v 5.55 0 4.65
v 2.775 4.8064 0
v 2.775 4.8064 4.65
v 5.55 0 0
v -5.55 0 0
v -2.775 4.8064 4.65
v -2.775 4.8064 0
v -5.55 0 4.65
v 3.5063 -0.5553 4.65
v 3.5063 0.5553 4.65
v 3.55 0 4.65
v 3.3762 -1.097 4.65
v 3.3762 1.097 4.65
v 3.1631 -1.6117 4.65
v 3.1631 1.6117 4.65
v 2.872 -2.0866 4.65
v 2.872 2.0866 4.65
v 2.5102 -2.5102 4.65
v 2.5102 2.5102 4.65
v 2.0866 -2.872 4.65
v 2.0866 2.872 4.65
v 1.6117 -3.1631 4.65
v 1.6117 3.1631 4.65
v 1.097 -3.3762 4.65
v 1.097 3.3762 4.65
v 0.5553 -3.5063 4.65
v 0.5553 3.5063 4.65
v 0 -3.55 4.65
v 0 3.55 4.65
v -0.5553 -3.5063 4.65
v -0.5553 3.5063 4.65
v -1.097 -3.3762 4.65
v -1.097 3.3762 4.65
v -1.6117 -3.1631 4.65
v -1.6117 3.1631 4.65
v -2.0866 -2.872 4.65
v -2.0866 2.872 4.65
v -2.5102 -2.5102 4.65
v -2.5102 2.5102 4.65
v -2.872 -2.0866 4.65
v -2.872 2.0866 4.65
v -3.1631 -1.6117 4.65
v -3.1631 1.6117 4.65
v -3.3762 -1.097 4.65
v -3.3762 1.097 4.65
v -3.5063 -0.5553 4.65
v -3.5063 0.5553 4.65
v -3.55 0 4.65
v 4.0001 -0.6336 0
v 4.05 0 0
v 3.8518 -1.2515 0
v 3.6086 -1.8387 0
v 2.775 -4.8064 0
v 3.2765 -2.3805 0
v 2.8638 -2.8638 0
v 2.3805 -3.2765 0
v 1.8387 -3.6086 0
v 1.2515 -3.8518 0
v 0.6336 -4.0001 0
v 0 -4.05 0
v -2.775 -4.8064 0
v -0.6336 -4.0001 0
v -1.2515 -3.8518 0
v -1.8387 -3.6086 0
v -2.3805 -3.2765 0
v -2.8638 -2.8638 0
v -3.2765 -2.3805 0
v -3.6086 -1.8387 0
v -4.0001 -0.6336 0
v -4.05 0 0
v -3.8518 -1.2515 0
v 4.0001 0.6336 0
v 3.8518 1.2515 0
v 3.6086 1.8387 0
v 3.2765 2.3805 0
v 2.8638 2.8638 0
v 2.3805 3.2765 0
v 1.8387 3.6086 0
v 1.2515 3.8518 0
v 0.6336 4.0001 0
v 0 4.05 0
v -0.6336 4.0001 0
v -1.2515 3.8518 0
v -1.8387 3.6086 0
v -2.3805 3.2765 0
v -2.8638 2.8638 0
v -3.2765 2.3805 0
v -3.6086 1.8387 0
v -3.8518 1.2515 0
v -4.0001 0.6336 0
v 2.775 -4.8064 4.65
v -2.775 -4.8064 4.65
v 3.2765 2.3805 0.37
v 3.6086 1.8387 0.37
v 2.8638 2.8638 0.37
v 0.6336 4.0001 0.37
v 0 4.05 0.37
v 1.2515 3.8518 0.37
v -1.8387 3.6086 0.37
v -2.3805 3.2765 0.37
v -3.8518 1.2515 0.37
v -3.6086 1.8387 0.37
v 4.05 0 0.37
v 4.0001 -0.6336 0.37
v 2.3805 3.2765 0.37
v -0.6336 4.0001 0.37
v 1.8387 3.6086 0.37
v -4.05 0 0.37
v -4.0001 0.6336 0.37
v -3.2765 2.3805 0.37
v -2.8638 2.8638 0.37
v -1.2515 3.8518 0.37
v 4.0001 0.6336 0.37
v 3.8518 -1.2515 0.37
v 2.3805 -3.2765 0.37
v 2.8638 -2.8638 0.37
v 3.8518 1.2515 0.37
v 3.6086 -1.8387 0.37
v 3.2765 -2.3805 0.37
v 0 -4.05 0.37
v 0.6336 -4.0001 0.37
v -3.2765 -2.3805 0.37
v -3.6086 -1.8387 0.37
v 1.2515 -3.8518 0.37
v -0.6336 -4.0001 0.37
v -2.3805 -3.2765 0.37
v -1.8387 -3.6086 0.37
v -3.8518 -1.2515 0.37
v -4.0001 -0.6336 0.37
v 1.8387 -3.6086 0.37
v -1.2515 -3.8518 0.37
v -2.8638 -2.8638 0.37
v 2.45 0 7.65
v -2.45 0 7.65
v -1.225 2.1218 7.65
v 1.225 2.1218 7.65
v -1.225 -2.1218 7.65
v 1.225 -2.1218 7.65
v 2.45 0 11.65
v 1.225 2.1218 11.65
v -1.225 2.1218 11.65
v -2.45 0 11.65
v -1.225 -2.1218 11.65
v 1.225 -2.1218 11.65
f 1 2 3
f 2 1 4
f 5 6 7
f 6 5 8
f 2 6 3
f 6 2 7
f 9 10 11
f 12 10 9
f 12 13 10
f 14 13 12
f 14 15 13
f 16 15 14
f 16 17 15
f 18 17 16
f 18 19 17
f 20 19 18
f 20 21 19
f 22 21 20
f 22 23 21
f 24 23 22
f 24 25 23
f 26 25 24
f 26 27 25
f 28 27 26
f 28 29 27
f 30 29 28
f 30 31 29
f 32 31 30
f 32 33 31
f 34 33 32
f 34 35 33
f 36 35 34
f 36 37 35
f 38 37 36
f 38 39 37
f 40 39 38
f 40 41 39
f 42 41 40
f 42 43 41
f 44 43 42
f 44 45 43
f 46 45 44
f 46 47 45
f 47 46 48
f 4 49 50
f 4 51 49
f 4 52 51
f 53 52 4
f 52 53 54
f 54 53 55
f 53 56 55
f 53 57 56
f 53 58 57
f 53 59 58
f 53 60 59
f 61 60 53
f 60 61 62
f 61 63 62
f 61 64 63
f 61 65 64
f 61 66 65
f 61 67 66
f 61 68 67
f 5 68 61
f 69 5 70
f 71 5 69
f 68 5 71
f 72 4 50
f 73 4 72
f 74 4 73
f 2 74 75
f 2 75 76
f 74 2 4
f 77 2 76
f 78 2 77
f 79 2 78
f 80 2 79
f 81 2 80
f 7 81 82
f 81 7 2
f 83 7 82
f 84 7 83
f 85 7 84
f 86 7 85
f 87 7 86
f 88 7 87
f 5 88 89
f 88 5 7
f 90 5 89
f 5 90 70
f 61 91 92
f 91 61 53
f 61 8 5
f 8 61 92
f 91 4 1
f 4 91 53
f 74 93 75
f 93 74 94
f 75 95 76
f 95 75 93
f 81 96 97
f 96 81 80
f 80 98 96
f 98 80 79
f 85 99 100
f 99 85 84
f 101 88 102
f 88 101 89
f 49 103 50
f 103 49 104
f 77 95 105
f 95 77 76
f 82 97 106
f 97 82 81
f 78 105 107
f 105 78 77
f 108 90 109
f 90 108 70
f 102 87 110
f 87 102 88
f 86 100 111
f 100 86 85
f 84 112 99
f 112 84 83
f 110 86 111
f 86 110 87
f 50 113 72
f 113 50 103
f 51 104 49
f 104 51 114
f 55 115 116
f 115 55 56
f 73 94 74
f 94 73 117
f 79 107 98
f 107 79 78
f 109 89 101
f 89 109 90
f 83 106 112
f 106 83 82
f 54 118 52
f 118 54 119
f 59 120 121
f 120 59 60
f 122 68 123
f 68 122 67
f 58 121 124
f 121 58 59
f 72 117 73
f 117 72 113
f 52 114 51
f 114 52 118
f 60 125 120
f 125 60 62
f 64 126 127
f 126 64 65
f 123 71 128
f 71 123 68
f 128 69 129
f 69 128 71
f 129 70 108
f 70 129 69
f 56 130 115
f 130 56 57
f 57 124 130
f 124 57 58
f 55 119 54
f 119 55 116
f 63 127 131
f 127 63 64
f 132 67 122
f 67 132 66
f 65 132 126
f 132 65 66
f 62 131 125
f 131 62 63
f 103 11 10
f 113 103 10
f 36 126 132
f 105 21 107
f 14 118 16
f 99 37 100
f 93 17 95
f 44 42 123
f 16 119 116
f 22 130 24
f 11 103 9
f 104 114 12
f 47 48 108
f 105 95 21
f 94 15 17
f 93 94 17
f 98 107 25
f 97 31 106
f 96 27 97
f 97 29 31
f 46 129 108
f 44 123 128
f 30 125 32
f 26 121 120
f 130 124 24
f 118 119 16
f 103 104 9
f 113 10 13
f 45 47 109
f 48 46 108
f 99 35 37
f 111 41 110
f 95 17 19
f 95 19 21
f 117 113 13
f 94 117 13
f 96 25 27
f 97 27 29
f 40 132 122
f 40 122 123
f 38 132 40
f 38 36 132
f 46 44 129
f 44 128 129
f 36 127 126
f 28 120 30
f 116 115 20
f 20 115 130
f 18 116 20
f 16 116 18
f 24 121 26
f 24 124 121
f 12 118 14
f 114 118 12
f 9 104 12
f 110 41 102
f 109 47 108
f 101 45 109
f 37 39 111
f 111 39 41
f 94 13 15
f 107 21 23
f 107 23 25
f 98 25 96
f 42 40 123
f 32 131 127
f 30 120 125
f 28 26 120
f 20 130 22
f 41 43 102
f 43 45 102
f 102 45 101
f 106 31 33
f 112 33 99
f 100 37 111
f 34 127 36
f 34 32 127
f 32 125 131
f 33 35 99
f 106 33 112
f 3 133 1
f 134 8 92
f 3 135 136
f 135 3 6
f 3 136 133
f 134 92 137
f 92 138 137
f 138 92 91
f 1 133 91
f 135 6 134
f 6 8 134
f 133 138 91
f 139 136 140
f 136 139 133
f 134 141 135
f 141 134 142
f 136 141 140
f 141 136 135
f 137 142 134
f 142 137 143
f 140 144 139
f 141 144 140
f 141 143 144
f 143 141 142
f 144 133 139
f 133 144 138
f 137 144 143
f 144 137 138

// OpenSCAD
// Anton Bilbaeno
// 4     b11b4
// github: 4b11b4
// thingiverse: 4b11b4
// www.4b11b4.com
// 1/30/2019


// A model for a 3D printed drill bit designed to tighten 3.5mm
// knurled nuts. These are common in Eurorack synthesizer modules.

// This drill bit is unique in that most designs feature "nubs" to
// fit into two "slots" on these knurled nuts. This design completely
// ignores those "slots". Instead, the inside of the "grip" is a cone
// shape. In other words, the cutout is a cylinder with a decreasing
// diameter as it goes up.

// Instead of having "nubs" which fit into the "slots" of the knurled
// nut, this "grip" simply uses friction. A small amount of downward
// force is required. This does cause the "grip" to wear out over time.
// However, as you wear out one layer (i.e. each "layer" created by the
// 3D printer), the layer above it will begin to grip the knurled nut.

// With the proper driver, the bit can be used to tighten knurled
// nuts to an appropriate level of torque.

// It may be possible to design some even more complex structures
// inside the bit, so that as you wear out one layer, you will reach
// a completely new grip. This would eventually require removing
// some of the face of the bit (i.e. sanding down the front).



// While tweaking the variables below, it is helpful to see the inside of
// the bit. You will find a helpful comment in the grip() definition below.



// REAL-WORLD MEASUREMENTS USING METAL CALIPERS
// If default .STL files do not work, try check these measurements.
KNURL_D_MEASURE = 7.70; //measured outer diameter of a knurled nut
KNURL_H_MEASURE = 1.87; //height of a knurled nut
THREAD_H_MEASURE = 4.65; //height of threads on jack
BIT_D_MEASURE = 4.5; //common drill bit sizes: 4.5, 6mm

// PRINTER TWEAKS (you may experiment with)
// Depending on your filament size, layer heights, print temperature, etc
// you may find slightly better results by tweaking these.
KNURL_R_TWEAK = 0.2; //increase if nut does not fit
KNURL_H_TWEAK = 1.5; //reduce height of lip at end of bit, max=KNURL_H_MEASURE
BIT_R_TWEAK   = 0.2; //increase if shaft does not snugly
GRIP_H_TWEAK = 0; //increase if bit bottoms out. knurl_h is 1.87mm, so THREAD_H_MEASURE should be an extra 1.87mm too big already...? assuming the "grip" area is hitting the jack at the top

// VARIABLES SETUP (you may change)
GRIP_SHELL = 1.5; //thickness outside wall <-> grip cutout
GRIP_R_CHANGE = 0.5; //how much the grip radius decreases
SHAFT_HEIGHT            = 4;   //shaft is inserted into drill chuck
TRANSFER_HEIGHT         = 3;   //"transfer" is between the bit and shaft
OUTER_NUM_ANGLES        = 6;   //usually bits are a hexagon...
GRIP_NUM_ANGLES         = 40;  //the number of "teeth"  

// FINAL VARIABLE SETUP (do not change)
KNURL_RADIUS        = KNURL_D_MEASURE/2 + KNURL_R_TWEAK;
KNURL_HEIGHT        = KNURL_H_MEASURE - KNURL_H_TWEAK;
GRIP_INNER_RADIUS   = KNURL_RADIUS - GRIP_R_CHANGE;
GRIP_HEIGHT         = THREAD_H_MEASURE + GRIP_H_TWEAK;   //size of inside cone
BIT_RADIUS          = BIT_D_MEASURE/2 + BIT_R_TWEAK;
OUTER_RADIUS        = KNURL_RADIUS + GRIP_SHELL;



union() {
  grip();
  transfer();
  shaft();
};

module grip() {
  difference() {
    cylinder(r=OUTER_RADIUS,h=GRIP_HEIGHT,$fn=OUTER_NUM_ANGLES); //outside
    cylinder(r=KNURL_RADIUS,h=KNURL_HEIGHT,$fn=GRIP_NUM_ANGLES); //lip
    translate([0,0,KNURL_HEIGHT]) //cone cutout
      cylinder(r1=KNURL_RADIUS,r2=GRIP_INNER_RADIUS,h=GRIP_HEIGHT-KNURL_HEIGHT,$fn=GRIP_NUM_ANGLES);
    /////// UNCONMMENT TO VIEW CROSS-SECTION OF BIT
    //translate([0,-500,-100]) cube(1000,1000,1000);
    ///////
  }
}

module transfer() {
  translate([0,0,GRIP_HEIGHT])
    cylinder(r1=OUTER_RADIUS,r2=BIT_RADIUS,h=TRANSFER_HEIGHT,$fn=OUTER_NUM_ANGLES);
}

module shaft() {
  translate([0,0,GRIP_HEIGHT+TRANSFER_HEIGHT])
    cylinder(r=BIT_RADIUS,h=SHAFT_HEIGHT,$fn=OUTER_NUM_ANGLES);
}
